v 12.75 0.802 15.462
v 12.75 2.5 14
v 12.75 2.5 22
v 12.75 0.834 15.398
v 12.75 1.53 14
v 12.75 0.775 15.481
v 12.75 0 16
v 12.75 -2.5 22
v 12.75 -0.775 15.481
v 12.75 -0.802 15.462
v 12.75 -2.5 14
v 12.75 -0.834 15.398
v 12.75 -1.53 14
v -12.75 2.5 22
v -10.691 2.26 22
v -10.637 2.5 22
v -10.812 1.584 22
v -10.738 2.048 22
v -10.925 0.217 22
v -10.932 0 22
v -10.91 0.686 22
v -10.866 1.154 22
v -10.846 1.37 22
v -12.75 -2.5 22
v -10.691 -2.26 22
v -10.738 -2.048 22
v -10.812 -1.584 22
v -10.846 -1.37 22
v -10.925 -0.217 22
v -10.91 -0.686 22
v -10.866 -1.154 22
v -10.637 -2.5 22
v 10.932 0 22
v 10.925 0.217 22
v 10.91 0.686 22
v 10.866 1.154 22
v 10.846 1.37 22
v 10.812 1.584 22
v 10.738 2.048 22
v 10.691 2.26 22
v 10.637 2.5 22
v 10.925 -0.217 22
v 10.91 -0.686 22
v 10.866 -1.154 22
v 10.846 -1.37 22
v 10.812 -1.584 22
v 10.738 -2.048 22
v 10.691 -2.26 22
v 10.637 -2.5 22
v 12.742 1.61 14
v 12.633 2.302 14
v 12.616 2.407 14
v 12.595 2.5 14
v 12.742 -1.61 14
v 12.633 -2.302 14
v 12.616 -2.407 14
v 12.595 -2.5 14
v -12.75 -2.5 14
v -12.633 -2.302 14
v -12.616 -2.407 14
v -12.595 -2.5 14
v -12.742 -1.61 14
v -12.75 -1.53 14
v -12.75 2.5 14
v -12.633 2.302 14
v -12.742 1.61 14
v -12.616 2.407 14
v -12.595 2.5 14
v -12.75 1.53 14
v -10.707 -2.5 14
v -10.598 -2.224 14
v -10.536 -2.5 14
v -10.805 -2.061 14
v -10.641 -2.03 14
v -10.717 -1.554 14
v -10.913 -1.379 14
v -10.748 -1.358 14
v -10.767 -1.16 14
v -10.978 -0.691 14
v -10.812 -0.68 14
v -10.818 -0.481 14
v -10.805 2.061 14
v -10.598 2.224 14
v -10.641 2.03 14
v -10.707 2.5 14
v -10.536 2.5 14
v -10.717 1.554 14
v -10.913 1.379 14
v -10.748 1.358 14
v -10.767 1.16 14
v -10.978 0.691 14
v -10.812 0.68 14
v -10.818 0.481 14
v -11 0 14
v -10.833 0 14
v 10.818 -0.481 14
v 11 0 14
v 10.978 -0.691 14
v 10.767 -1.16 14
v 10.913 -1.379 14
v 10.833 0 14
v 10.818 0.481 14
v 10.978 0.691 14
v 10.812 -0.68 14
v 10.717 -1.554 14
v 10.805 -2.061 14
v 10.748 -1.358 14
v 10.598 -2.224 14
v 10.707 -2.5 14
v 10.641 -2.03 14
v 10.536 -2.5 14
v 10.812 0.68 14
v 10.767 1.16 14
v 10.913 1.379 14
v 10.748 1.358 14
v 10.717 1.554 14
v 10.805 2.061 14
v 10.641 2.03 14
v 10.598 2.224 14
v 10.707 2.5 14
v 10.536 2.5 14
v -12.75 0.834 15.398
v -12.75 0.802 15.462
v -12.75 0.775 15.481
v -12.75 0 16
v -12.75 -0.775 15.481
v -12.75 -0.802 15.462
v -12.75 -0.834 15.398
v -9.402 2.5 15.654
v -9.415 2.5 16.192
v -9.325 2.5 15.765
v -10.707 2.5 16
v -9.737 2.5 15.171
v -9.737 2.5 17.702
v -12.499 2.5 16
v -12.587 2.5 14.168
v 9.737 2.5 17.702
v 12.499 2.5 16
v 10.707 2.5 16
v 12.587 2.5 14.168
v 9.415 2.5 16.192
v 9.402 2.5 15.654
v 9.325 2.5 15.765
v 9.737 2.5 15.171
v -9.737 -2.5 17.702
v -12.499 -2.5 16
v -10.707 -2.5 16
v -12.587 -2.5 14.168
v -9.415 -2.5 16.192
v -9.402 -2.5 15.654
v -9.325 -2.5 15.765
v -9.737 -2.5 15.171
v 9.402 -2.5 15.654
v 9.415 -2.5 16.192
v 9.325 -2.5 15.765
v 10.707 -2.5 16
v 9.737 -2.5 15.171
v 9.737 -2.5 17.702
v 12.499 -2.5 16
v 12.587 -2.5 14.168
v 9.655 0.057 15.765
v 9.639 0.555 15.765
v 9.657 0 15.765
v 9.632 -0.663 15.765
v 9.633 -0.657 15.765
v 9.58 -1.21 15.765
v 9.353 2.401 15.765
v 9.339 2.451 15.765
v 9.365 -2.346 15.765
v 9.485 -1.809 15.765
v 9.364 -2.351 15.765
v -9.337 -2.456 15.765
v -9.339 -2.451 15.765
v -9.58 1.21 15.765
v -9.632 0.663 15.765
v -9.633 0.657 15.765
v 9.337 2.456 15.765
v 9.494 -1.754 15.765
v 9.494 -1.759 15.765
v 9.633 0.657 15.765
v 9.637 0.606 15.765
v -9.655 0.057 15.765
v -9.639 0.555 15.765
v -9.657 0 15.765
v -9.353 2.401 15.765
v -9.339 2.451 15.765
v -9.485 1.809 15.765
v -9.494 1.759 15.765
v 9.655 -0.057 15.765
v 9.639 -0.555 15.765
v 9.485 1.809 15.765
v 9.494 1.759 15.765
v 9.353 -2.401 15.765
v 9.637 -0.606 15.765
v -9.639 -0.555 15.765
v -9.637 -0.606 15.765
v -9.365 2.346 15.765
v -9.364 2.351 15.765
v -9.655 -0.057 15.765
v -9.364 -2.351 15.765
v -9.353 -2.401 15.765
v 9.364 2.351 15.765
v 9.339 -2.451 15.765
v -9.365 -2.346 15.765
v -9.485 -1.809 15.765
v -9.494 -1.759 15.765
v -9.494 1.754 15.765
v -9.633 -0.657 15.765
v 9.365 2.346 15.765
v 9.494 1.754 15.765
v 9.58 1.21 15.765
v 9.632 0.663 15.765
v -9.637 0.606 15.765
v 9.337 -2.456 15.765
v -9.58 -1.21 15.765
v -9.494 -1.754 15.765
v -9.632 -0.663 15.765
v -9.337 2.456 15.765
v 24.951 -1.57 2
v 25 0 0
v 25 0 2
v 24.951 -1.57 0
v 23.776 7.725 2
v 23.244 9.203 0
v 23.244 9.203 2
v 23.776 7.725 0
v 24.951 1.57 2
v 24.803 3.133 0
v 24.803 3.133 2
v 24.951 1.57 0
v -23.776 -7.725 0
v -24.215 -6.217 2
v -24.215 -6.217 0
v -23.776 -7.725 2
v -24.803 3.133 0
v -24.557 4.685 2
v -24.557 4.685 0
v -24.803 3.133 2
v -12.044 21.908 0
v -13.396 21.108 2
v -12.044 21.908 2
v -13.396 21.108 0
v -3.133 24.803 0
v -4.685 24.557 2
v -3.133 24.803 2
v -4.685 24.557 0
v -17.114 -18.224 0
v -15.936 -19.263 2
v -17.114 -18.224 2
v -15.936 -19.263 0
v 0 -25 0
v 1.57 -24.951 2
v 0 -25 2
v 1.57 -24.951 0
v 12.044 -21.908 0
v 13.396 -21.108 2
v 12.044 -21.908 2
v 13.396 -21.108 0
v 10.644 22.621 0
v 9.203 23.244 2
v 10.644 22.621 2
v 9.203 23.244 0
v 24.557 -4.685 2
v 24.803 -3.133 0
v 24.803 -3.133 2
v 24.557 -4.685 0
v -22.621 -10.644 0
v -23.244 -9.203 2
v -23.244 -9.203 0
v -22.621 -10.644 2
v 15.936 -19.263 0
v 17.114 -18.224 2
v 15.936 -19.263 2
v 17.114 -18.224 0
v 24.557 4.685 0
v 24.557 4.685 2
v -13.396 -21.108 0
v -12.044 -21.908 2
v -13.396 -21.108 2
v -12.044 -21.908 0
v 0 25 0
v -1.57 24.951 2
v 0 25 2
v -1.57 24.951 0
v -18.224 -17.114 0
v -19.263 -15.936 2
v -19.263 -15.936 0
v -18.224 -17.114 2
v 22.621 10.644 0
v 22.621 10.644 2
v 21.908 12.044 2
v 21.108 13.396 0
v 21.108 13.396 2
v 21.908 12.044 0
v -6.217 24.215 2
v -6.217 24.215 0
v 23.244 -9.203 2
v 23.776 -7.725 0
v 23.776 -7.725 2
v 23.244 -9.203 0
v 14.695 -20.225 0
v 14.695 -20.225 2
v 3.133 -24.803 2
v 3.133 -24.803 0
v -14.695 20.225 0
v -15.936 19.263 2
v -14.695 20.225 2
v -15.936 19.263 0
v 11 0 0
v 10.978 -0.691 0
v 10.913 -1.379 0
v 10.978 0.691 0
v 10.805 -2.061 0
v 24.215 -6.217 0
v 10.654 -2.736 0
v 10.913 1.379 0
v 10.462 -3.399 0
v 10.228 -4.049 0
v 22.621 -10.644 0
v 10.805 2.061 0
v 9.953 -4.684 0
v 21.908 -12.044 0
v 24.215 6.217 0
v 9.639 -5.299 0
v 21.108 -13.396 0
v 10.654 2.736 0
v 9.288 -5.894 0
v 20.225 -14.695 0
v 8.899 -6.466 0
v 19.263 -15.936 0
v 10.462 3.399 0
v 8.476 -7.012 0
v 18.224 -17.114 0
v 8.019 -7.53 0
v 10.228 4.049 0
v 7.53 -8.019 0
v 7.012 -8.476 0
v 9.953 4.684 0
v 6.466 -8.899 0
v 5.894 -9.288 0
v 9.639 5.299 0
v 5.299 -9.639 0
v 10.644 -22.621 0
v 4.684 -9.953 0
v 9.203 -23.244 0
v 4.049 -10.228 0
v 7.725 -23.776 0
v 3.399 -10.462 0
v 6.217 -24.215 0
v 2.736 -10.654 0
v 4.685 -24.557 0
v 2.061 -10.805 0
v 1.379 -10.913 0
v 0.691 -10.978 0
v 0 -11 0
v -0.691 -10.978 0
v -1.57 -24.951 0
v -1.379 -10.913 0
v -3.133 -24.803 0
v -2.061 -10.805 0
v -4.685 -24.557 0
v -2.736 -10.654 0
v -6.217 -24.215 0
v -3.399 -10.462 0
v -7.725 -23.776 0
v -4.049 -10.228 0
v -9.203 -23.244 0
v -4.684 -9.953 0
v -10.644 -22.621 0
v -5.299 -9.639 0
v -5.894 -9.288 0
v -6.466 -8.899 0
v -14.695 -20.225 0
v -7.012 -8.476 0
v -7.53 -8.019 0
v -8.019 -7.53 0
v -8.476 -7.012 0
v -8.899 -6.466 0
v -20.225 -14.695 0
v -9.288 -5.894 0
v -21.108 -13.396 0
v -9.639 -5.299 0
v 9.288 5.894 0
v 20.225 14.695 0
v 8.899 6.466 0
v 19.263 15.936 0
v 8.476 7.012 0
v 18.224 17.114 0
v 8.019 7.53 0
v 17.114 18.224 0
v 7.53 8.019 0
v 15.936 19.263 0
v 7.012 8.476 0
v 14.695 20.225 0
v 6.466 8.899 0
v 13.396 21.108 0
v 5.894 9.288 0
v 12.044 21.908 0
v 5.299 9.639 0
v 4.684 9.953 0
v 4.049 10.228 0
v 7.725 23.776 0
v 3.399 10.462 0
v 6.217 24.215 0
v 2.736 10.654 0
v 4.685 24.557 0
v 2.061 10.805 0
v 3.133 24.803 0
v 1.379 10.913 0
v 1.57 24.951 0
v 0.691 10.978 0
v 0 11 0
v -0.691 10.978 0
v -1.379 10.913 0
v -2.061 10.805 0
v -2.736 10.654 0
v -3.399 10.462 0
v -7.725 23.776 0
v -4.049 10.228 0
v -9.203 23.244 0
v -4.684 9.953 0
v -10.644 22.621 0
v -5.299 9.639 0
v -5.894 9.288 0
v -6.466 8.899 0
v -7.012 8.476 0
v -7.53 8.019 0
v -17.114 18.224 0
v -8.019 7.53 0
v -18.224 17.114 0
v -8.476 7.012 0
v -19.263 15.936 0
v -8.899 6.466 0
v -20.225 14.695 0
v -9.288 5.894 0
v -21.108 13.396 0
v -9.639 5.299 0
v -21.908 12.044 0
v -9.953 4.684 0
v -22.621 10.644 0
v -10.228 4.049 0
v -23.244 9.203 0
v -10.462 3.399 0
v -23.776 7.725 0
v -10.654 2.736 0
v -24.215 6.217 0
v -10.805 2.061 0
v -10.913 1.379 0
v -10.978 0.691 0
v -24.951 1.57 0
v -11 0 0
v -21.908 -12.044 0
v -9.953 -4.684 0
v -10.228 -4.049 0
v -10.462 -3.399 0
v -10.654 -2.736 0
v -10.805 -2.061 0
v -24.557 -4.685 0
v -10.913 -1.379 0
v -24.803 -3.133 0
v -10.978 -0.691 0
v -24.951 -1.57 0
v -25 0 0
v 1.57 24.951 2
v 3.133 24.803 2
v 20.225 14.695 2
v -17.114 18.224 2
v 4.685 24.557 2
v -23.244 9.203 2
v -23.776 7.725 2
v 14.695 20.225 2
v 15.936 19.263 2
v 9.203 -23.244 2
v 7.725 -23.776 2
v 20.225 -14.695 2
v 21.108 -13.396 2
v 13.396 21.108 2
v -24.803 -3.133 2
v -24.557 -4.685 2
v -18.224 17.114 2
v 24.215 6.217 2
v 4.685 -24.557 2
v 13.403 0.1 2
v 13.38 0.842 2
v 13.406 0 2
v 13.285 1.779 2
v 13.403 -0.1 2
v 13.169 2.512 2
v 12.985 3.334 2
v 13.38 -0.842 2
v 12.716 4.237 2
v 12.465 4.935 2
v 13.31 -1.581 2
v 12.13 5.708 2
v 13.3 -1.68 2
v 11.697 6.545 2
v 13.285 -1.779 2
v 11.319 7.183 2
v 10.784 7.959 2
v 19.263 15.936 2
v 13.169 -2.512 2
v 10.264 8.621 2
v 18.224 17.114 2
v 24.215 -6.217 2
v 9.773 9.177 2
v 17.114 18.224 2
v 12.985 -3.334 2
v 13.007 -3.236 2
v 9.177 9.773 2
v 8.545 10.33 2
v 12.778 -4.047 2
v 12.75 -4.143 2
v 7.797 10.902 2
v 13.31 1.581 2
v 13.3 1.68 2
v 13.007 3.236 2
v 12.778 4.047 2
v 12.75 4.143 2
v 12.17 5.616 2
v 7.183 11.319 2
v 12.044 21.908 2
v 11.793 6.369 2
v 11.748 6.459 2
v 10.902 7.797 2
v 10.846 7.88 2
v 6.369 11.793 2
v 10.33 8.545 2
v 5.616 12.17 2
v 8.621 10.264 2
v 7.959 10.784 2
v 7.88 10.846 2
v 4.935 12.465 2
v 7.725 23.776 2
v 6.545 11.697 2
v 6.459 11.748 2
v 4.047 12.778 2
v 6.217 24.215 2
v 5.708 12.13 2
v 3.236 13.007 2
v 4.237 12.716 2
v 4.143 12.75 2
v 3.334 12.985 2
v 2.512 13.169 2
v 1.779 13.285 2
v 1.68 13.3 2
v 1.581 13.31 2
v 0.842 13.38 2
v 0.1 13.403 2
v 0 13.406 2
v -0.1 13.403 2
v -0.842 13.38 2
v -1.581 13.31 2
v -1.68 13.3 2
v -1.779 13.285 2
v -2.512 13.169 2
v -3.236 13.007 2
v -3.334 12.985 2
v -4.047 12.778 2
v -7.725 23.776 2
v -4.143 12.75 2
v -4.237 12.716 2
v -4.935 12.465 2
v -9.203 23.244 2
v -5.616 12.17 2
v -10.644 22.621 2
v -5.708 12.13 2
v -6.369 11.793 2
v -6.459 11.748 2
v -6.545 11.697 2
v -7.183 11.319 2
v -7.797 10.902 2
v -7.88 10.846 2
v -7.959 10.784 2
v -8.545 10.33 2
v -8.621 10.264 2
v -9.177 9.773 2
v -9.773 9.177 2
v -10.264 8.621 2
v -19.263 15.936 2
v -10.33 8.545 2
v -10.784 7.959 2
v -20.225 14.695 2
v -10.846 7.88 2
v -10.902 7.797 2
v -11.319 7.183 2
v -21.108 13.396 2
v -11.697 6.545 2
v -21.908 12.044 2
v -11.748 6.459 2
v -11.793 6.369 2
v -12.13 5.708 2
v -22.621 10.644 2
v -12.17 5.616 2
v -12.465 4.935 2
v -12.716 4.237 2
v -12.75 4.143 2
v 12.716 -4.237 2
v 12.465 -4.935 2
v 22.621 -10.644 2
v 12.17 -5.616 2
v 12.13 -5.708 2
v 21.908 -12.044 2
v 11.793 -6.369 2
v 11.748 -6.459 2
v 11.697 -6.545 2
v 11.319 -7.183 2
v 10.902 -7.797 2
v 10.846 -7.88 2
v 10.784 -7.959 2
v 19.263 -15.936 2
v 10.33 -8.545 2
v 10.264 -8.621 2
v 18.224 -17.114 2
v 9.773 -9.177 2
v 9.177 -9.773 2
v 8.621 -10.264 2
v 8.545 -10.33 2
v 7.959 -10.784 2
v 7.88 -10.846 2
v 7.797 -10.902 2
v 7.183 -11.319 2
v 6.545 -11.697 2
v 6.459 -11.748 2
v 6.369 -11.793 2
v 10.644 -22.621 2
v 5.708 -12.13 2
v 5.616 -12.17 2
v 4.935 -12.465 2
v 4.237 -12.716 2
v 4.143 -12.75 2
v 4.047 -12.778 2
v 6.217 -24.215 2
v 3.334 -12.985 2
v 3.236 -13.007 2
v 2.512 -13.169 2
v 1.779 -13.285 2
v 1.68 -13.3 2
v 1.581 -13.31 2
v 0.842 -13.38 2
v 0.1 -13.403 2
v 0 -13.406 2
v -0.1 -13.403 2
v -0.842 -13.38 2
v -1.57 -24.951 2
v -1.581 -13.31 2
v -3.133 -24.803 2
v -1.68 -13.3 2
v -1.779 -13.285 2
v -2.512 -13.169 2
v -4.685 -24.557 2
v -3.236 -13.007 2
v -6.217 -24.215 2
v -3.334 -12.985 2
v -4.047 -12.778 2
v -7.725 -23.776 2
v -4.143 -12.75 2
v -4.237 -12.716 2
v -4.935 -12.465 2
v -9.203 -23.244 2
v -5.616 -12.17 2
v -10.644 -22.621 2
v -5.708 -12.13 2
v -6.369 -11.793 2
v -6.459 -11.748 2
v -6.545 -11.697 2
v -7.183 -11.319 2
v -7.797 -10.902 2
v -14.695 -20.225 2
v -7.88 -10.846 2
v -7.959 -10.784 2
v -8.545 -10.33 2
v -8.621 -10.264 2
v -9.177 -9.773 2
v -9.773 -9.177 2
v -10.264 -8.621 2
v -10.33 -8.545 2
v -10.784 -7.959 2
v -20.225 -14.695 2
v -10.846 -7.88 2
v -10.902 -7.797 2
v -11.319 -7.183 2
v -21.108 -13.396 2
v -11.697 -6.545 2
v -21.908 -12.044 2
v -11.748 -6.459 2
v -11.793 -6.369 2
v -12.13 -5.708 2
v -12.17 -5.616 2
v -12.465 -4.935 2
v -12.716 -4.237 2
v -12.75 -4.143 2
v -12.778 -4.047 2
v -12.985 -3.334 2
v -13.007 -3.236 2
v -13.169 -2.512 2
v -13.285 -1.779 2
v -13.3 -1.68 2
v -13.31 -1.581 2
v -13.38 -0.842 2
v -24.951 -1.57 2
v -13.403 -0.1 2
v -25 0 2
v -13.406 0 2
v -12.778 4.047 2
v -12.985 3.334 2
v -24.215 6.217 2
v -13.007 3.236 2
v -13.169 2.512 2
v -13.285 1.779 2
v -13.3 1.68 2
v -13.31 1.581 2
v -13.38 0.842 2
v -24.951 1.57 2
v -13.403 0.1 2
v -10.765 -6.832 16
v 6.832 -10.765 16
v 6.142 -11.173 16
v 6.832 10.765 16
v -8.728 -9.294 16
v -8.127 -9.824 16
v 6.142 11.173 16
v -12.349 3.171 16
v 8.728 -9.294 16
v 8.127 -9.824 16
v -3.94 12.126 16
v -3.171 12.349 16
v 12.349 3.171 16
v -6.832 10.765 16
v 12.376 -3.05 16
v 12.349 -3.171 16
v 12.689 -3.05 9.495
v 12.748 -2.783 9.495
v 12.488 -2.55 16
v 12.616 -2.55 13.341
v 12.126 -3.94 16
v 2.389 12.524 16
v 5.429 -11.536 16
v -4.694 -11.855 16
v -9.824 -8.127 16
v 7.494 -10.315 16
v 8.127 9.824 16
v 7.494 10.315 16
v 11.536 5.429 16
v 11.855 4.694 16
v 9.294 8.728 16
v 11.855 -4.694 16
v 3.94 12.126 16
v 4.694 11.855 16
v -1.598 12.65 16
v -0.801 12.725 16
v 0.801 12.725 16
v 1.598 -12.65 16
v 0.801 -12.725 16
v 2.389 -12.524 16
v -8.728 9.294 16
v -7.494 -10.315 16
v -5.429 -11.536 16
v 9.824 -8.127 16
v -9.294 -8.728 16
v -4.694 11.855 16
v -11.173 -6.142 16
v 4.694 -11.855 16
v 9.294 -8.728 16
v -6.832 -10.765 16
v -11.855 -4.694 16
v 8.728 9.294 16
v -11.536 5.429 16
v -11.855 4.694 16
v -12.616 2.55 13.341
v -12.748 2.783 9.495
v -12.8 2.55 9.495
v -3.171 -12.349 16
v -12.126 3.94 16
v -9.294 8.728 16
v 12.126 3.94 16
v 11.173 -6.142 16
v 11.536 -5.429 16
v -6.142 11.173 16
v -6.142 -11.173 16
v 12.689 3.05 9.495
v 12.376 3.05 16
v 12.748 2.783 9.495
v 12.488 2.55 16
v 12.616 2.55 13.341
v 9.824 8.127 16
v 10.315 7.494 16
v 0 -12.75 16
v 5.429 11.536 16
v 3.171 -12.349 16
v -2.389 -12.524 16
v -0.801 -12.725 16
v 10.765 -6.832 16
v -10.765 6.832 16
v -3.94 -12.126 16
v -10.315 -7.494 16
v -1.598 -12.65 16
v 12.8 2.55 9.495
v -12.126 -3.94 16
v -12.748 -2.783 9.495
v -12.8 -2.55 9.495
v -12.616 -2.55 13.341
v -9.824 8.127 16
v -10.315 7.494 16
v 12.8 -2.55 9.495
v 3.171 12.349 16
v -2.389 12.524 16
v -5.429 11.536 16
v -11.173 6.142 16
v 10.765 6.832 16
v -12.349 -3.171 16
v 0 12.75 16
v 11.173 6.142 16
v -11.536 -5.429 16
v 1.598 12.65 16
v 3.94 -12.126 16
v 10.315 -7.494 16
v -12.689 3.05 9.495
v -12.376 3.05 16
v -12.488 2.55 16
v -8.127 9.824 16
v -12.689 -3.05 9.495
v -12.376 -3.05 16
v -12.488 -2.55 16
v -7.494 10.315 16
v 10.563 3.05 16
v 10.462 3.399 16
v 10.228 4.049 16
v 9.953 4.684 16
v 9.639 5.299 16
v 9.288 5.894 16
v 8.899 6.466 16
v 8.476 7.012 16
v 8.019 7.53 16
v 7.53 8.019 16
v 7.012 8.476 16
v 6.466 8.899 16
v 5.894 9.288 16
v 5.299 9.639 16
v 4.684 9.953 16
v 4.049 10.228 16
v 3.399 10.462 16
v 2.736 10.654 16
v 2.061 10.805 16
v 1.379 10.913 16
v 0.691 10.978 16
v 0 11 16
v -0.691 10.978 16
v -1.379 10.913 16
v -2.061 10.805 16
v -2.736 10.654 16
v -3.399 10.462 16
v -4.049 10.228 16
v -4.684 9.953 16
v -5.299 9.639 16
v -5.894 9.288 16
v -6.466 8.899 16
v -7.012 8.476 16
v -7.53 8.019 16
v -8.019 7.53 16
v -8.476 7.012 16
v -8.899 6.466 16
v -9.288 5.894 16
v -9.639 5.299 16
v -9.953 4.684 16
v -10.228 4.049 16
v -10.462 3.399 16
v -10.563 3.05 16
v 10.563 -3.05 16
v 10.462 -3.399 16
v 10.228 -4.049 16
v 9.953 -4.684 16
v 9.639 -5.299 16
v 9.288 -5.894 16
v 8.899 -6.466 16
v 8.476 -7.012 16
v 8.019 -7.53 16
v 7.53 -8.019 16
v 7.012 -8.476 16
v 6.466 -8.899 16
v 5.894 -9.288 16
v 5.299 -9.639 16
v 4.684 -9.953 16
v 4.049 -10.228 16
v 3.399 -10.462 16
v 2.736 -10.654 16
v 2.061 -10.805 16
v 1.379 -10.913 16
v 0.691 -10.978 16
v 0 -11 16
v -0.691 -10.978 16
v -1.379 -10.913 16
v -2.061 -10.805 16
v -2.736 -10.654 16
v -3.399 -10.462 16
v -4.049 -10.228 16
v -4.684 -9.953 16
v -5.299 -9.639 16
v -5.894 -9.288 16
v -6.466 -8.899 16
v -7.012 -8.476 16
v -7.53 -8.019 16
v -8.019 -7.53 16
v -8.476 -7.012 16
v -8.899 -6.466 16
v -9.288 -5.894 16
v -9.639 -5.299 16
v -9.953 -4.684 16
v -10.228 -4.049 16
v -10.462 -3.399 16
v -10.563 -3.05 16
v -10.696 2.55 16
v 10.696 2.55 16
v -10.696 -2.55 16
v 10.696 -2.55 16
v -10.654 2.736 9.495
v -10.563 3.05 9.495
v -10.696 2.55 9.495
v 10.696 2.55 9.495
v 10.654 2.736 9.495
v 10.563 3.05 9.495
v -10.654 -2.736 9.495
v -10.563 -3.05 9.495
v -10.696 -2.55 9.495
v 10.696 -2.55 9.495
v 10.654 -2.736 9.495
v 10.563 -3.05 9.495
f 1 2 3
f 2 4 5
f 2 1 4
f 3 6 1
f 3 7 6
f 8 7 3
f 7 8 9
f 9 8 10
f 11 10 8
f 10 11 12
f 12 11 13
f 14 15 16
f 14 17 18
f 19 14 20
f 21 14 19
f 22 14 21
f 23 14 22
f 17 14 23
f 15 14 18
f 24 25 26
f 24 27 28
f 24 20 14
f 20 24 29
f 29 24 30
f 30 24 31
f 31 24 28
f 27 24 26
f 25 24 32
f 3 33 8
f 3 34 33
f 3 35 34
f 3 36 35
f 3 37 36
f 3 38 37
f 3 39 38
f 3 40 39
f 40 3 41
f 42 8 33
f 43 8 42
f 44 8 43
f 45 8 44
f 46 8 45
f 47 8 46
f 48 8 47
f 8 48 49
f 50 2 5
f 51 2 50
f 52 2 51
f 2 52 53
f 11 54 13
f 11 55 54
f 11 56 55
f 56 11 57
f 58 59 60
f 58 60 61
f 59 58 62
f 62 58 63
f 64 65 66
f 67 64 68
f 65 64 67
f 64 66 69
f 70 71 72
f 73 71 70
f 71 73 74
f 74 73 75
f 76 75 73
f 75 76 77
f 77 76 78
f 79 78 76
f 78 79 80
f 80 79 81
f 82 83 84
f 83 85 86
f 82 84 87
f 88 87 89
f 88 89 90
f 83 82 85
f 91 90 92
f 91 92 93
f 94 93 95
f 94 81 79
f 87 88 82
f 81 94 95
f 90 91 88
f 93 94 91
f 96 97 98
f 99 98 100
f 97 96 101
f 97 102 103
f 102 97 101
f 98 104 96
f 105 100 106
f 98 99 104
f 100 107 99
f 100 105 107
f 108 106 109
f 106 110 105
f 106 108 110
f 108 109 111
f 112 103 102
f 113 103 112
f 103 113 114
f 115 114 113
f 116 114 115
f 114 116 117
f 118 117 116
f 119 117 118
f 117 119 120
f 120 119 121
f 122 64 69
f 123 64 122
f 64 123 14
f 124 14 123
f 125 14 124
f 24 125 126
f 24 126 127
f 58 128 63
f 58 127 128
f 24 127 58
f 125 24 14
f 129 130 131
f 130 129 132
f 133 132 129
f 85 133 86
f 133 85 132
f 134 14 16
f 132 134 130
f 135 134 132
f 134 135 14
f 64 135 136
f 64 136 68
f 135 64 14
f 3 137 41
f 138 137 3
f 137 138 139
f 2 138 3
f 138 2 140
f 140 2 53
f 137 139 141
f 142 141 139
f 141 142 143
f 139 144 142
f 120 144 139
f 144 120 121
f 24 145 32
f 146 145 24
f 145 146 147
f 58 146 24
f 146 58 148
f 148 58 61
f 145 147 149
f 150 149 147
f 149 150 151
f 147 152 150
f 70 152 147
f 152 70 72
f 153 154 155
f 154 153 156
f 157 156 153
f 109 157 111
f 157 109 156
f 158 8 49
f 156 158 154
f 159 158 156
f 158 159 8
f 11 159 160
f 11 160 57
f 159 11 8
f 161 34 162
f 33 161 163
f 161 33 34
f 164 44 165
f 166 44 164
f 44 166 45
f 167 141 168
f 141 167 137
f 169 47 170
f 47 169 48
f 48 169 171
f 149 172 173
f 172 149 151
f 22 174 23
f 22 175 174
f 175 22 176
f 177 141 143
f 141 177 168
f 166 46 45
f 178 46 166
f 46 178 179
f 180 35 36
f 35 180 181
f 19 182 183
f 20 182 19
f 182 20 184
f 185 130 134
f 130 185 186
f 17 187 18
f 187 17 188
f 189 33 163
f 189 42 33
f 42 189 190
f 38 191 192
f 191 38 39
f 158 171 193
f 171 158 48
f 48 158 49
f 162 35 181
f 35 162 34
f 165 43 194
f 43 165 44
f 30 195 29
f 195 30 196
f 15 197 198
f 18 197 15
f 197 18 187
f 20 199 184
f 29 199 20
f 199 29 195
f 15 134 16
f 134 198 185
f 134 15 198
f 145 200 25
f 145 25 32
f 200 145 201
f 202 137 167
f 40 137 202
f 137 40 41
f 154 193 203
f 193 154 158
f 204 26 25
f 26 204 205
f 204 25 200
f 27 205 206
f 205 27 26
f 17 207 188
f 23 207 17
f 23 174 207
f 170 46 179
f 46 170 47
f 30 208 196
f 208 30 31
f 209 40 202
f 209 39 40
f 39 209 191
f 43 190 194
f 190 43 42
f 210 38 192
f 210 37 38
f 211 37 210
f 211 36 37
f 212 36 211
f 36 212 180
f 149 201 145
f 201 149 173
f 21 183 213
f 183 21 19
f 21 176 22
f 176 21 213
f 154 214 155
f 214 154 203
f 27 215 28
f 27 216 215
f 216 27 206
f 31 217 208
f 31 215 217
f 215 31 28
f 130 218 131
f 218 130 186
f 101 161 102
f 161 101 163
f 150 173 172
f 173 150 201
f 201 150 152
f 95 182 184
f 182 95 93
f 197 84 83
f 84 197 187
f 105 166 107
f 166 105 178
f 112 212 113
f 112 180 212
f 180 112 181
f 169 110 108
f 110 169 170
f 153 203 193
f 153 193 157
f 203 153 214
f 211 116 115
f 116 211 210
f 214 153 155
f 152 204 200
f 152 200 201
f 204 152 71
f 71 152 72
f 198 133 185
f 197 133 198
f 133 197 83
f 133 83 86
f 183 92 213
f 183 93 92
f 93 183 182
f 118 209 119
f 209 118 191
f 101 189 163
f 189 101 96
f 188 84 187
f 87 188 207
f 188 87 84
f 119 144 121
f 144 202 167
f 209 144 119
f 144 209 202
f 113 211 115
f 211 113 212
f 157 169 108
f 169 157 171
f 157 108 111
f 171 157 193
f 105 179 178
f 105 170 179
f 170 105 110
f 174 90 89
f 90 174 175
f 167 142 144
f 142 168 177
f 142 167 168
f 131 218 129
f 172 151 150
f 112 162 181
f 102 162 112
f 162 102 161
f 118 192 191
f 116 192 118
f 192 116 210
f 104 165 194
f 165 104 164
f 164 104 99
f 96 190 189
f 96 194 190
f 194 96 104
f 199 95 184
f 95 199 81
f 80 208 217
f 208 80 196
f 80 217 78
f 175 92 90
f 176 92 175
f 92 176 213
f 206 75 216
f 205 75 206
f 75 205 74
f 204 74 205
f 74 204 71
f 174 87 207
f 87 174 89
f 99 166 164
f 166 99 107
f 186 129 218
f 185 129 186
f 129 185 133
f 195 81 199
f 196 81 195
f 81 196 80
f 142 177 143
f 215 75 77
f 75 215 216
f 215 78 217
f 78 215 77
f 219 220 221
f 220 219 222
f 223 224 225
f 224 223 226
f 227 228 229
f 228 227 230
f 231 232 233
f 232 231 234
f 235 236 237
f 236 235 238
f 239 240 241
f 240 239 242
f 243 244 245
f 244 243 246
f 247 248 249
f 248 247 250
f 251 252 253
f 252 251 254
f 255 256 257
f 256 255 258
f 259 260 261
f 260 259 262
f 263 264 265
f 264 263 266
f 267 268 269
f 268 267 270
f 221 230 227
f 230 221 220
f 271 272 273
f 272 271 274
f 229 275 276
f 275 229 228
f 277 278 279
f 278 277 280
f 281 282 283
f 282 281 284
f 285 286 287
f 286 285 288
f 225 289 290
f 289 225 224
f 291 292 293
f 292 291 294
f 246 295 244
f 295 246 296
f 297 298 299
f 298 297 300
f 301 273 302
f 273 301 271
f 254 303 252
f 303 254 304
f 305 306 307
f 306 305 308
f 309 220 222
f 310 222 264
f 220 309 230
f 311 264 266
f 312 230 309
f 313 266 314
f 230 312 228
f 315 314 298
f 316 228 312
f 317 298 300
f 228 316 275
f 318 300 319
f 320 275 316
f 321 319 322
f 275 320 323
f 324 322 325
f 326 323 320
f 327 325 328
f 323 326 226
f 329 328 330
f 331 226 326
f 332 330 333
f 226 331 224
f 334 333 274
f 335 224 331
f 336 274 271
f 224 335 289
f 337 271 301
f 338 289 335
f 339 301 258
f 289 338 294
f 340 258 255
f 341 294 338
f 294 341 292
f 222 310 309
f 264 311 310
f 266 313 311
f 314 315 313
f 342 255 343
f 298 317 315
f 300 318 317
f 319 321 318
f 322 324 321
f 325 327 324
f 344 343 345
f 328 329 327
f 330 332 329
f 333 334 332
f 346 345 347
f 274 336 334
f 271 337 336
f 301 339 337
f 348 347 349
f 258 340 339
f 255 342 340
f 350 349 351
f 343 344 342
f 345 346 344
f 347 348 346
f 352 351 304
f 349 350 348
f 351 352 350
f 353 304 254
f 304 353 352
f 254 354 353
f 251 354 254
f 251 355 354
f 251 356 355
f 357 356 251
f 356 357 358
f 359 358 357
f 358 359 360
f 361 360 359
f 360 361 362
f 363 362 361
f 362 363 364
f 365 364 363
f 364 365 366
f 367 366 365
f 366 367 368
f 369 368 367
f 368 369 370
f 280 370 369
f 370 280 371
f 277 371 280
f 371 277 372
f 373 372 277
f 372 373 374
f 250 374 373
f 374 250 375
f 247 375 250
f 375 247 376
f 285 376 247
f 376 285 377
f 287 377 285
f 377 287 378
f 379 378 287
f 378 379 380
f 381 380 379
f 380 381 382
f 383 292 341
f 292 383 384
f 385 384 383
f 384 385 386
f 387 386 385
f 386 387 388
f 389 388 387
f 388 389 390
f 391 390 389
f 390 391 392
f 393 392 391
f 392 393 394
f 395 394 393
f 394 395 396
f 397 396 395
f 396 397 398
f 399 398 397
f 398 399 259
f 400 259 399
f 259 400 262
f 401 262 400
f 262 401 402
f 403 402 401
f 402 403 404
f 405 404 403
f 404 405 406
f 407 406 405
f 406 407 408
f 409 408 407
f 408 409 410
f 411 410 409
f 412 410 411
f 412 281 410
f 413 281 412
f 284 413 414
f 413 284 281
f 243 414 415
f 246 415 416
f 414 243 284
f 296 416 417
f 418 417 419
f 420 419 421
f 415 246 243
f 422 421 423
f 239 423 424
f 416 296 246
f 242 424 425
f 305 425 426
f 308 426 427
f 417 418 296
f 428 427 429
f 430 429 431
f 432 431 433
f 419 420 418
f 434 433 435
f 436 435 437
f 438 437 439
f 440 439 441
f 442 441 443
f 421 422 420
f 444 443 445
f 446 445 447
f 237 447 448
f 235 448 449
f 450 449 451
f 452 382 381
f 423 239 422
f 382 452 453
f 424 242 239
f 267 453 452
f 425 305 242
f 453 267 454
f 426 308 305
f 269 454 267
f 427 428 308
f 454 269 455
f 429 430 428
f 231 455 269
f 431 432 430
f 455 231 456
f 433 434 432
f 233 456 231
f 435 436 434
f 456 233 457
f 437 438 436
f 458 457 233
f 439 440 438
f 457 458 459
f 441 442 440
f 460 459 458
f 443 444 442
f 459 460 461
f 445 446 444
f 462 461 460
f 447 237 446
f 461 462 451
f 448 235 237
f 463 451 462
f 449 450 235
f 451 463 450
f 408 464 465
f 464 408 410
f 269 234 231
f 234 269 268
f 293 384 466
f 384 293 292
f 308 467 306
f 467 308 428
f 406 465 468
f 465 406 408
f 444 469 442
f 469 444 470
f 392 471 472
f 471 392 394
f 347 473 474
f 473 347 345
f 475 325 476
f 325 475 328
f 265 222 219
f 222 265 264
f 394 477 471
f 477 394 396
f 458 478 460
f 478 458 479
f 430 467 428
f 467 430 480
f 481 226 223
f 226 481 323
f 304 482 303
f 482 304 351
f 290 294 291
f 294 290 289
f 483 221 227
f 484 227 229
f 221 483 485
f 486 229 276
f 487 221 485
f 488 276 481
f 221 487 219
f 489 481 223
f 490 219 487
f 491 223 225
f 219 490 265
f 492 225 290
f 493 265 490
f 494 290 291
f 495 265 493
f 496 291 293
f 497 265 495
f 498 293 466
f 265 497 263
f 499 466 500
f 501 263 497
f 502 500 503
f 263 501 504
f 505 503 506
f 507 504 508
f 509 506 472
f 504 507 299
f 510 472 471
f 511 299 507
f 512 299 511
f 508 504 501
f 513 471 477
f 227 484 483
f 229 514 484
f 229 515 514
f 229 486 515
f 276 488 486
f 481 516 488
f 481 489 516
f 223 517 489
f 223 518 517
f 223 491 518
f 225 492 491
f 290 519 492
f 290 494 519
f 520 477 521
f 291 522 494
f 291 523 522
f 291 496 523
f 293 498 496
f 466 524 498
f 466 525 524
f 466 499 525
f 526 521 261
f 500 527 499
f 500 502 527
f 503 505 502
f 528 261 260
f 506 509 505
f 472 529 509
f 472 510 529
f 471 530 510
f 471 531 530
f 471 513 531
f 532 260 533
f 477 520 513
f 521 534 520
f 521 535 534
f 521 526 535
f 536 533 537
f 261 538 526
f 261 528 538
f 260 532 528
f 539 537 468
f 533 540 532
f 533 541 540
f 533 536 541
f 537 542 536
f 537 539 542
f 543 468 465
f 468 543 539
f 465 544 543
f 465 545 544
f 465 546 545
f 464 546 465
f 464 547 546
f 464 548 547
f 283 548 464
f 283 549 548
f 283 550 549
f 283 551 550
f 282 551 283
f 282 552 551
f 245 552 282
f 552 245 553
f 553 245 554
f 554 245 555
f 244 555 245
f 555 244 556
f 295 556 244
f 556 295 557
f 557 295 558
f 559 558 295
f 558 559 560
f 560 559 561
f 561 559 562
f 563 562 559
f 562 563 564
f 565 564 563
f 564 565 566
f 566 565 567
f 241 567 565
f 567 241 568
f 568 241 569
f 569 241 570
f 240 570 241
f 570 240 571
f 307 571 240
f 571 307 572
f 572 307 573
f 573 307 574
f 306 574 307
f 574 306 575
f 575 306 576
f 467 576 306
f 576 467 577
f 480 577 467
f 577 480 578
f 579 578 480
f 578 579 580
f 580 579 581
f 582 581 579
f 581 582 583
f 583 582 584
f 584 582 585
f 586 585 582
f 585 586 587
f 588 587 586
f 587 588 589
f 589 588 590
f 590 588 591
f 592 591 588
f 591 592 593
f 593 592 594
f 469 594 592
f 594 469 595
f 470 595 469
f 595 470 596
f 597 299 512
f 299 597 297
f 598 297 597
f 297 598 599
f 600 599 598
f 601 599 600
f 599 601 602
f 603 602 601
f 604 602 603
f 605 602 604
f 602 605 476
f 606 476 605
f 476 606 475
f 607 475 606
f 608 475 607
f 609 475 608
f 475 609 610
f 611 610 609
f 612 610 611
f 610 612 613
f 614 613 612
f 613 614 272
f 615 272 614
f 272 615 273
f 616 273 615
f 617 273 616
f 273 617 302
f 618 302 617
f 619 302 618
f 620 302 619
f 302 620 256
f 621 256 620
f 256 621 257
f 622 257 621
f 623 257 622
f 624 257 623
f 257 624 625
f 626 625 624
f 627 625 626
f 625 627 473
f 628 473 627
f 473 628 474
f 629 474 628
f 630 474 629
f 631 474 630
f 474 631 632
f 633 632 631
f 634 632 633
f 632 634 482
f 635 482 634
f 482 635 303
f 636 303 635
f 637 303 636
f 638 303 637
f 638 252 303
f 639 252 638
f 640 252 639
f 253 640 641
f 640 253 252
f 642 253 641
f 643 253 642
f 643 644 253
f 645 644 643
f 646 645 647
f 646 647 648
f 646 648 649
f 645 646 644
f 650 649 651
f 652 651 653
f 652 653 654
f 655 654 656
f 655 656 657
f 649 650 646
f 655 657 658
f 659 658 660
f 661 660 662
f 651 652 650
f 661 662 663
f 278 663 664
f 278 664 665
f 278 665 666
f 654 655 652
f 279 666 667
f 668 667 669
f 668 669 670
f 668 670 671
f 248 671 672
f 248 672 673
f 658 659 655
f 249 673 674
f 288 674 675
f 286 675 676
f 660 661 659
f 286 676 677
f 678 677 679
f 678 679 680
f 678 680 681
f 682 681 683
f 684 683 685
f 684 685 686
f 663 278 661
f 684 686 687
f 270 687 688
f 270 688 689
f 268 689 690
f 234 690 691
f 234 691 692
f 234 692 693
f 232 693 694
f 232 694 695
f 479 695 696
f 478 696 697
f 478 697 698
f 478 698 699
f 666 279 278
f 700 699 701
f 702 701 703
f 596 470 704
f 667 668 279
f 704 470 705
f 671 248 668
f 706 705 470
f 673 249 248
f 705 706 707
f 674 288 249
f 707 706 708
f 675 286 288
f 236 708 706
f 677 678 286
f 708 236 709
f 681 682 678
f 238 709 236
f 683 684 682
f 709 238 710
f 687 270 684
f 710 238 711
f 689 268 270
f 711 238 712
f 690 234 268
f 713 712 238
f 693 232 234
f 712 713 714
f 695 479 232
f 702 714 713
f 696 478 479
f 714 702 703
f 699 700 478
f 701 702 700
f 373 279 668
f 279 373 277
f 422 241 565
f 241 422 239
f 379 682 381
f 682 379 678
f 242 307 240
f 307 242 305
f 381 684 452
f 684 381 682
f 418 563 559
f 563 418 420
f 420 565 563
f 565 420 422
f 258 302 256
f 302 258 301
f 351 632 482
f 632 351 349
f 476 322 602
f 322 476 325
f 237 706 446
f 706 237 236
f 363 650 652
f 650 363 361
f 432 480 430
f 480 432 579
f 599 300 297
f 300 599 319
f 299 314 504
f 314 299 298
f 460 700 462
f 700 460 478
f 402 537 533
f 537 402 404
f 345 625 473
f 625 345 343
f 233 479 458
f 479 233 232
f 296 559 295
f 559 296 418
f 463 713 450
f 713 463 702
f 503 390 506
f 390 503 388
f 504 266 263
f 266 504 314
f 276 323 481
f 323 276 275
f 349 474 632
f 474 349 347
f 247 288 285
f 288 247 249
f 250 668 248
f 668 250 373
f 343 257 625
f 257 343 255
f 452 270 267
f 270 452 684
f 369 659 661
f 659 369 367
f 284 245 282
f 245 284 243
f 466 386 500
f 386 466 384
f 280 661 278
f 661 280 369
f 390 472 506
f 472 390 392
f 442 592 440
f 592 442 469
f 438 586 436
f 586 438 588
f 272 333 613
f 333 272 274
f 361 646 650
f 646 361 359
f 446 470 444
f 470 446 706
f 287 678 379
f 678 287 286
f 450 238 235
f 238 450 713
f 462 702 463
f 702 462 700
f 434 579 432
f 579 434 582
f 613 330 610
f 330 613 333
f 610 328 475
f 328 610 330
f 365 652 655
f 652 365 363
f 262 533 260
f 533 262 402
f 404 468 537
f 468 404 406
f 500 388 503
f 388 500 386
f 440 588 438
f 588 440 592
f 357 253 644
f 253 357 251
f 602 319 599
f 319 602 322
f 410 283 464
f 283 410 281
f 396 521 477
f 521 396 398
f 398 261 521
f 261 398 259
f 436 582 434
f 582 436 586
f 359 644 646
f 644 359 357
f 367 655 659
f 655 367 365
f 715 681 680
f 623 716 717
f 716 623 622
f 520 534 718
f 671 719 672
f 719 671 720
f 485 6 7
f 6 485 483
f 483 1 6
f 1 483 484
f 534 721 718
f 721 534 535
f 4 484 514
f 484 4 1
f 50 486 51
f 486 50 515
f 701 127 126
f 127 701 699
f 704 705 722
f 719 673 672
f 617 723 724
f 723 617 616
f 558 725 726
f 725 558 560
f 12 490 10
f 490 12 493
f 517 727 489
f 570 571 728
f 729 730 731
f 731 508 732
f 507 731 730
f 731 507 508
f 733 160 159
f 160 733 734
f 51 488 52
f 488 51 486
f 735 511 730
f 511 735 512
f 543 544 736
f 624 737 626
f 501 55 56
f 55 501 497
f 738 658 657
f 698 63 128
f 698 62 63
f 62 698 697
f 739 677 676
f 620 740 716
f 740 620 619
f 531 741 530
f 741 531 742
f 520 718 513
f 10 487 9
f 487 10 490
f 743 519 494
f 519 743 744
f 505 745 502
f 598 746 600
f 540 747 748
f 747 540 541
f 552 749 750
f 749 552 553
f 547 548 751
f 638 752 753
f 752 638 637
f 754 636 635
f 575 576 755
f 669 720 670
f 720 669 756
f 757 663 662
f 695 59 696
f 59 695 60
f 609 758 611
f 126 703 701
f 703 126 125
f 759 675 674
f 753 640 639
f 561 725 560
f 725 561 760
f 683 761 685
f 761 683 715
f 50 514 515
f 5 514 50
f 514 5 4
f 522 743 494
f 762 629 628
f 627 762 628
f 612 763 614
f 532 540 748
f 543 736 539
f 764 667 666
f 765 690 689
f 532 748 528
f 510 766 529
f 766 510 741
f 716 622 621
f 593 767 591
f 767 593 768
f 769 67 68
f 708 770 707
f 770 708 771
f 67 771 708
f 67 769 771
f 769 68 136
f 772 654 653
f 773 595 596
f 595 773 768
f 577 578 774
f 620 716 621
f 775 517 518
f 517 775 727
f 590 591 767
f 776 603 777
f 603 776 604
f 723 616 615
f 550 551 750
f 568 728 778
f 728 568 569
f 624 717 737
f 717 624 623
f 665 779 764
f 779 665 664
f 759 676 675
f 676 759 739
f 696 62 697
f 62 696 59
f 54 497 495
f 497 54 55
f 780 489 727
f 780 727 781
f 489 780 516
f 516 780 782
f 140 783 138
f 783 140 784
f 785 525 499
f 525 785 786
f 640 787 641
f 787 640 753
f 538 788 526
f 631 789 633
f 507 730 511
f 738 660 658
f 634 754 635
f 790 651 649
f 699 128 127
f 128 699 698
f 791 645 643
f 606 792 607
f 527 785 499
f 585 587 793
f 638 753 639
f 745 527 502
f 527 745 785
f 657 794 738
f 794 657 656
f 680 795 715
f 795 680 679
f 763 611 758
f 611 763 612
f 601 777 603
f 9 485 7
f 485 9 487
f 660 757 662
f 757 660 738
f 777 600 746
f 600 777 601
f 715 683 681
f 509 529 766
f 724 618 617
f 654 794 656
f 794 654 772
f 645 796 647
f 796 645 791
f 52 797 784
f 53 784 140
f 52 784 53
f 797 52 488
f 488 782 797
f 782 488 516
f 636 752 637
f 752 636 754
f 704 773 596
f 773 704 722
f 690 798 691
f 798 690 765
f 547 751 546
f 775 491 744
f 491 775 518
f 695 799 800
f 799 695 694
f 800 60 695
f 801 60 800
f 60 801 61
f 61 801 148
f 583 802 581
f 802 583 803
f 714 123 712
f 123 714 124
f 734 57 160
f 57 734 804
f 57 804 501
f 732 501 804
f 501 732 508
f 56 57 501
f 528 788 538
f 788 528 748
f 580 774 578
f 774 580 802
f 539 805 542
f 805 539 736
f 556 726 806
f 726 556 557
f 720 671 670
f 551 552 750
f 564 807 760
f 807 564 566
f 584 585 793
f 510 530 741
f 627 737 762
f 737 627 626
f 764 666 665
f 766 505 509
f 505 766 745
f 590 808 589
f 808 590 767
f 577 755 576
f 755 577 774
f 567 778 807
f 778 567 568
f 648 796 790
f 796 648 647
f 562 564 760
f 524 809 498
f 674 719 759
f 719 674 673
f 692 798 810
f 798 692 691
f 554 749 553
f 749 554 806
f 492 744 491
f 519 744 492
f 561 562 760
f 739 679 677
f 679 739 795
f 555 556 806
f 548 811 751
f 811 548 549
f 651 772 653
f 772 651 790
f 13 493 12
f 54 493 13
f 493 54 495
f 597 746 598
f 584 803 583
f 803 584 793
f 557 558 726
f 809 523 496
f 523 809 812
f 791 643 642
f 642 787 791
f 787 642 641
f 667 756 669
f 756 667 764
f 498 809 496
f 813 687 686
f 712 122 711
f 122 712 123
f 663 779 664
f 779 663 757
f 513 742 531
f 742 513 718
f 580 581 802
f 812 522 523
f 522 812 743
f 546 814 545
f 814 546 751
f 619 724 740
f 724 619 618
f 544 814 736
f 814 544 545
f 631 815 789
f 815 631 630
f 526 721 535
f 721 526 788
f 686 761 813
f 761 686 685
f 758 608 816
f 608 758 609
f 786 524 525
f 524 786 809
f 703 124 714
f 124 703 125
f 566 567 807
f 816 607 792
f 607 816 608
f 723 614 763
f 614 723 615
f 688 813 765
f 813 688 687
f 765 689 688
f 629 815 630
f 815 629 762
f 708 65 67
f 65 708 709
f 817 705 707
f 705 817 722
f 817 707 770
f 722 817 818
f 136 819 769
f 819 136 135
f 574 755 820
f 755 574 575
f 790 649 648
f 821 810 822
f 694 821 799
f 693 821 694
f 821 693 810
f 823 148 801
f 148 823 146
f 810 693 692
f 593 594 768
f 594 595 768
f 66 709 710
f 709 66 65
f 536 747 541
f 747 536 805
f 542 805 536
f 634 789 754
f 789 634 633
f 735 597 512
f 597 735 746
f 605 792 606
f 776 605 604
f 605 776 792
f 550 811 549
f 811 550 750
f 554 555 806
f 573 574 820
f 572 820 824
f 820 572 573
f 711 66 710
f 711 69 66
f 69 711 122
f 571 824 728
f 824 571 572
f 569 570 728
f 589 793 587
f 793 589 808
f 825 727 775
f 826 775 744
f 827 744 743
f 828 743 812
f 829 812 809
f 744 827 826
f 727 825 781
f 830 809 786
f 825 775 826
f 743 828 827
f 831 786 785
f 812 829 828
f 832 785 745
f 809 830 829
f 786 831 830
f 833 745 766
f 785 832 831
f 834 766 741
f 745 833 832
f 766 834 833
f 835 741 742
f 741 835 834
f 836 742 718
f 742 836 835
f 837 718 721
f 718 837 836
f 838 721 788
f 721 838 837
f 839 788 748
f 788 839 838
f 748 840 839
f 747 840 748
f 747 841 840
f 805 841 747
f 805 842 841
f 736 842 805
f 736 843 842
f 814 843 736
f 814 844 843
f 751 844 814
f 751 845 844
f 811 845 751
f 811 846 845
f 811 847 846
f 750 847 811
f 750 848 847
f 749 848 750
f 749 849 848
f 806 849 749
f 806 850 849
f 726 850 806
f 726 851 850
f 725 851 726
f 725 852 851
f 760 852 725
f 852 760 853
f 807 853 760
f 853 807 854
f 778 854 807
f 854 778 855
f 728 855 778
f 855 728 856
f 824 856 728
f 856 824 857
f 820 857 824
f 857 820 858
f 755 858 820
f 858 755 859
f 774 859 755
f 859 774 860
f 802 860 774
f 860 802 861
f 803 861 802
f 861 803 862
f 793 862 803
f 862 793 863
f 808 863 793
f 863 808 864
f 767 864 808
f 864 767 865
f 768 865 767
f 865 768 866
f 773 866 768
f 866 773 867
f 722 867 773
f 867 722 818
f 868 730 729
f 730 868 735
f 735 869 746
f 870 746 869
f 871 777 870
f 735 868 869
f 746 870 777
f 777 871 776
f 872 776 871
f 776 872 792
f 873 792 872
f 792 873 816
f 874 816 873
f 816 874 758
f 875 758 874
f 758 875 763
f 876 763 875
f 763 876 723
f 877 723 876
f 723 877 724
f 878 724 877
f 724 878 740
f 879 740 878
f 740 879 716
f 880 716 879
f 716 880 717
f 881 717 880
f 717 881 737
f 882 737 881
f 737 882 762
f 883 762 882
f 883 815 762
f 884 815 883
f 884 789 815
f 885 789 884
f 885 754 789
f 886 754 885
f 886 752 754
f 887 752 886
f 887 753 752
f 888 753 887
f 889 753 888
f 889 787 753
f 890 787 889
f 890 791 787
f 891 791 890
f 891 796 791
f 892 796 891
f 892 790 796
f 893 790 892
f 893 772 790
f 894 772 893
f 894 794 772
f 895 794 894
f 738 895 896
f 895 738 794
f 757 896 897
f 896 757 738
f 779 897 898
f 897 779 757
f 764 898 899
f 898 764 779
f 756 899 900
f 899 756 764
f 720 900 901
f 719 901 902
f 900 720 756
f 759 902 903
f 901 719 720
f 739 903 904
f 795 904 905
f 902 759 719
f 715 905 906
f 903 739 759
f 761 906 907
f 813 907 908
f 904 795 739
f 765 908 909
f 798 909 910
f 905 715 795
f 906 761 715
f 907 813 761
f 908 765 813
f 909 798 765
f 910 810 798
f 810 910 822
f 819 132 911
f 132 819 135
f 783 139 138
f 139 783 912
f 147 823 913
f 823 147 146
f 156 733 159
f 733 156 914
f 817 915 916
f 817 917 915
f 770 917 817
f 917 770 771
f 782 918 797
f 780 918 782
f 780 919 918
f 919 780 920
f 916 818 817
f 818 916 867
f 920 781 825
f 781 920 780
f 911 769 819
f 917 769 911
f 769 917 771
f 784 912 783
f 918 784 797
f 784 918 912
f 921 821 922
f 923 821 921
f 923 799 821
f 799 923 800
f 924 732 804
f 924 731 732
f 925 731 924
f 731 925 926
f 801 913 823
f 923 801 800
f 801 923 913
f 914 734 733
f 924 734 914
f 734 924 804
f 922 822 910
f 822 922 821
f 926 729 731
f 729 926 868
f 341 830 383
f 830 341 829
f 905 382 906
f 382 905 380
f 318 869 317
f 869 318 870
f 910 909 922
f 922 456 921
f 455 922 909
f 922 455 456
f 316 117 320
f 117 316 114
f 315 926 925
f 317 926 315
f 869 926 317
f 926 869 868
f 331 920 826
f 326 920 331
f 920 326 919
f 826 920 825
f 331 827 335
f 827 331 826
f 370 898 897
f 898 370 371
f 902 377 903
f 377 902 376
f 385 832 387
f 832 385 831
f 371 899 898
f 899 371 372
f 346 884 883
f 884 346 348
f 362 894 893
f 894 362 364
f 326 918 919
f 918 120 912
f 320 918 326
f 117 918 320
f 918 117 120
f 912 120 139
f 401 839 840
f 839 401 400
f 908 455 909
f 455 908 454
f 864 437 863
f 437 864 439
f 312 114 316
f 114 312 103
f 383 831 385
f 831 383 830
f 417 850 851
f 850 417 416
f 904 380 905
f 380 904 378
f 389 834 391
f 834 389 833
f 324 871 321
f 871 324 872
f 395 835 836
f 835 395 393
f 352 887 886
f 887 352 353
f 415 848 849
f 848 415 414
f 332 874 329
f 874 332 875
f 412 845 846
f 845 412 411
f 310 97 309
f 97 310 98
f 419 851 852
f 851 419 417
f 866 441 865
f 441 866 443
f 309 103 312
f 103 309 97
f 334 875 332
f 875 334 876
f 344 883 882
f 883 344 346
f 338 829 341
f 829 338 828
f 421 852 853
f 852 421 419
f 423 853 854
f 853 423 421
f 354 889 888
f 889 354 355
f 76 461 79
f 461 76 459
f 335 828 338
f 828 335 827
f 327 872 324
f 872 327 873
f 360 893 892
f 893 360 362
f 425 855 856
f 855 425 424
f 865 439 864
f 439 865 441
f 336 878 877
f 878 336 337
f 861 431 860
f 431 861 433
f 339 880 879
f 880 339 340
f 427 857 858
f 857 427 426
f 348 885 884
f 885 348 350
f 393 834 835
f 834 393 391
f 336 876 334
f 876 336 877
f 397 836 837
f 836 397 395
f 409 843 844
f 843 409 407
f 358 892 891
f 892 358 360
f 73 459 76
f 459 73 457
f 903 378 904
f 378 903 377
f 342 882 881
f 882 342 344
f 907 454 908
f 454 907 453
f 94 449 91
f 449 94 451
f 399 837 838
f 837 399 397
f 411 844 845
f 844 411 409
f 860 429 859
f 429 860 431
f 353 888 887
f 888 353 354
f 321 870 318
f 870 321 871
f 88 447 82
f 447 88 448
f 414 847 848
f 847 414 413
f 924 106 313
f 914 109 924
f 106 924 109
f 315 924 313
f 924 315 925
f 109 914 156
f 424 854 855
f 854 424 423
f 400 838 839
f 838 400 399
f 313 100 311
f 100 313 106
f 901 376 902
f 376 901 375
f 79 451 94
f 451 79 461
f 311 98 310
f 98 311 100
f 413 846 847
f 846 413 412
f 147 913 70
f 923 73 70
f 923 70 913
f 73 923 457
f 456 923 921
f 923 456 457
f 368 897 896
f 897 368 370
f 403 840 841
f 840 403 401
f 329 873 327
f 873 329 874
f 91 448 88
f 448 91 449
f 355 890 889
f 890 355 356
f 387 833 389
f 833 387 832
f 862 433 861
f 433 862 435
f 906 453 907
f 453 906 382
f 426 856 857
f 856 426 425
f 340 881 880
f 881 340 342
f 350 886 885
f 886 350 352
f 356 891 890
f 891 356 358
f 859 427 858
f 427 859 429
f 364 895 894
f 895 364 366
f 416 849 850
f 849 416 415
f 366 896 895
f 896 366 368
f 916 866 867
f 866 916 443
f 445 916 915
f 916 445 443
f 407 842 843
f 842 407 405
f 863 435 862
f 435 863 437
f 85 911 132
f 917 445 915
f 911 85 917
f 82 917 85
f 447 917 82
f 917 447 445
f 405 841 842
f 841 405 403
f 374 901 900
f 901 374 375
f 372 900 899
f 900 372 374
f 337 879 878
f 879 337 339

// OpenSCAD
$fn=100;

module sprayHook() {
    difference() {
        union() {
            cylinder(d=50, h=2);
            cylinder(d1=27, d2=25.5, h=16);
        }
        cylinder(d=22, h=21.01);
        translate([0,0,13]) {
            translate([0,5/2+0.3,0]) cube([50,0.5,7.01], center=true);
            translate([0,-5/2-0.3,0]) cube([50,0.5,7.01], center=true);
        }
    }
    
    difference() {
        translate([0,0,18])
            cube([25.5,5,8], center=true);
        translate([0,0,15])
            cylinder(d1=19,d2=23.5,h=11);
        translate([0,0,13])
            cylinder(d1=23,d2=19,h=3);
    }
}

sprayHook();
